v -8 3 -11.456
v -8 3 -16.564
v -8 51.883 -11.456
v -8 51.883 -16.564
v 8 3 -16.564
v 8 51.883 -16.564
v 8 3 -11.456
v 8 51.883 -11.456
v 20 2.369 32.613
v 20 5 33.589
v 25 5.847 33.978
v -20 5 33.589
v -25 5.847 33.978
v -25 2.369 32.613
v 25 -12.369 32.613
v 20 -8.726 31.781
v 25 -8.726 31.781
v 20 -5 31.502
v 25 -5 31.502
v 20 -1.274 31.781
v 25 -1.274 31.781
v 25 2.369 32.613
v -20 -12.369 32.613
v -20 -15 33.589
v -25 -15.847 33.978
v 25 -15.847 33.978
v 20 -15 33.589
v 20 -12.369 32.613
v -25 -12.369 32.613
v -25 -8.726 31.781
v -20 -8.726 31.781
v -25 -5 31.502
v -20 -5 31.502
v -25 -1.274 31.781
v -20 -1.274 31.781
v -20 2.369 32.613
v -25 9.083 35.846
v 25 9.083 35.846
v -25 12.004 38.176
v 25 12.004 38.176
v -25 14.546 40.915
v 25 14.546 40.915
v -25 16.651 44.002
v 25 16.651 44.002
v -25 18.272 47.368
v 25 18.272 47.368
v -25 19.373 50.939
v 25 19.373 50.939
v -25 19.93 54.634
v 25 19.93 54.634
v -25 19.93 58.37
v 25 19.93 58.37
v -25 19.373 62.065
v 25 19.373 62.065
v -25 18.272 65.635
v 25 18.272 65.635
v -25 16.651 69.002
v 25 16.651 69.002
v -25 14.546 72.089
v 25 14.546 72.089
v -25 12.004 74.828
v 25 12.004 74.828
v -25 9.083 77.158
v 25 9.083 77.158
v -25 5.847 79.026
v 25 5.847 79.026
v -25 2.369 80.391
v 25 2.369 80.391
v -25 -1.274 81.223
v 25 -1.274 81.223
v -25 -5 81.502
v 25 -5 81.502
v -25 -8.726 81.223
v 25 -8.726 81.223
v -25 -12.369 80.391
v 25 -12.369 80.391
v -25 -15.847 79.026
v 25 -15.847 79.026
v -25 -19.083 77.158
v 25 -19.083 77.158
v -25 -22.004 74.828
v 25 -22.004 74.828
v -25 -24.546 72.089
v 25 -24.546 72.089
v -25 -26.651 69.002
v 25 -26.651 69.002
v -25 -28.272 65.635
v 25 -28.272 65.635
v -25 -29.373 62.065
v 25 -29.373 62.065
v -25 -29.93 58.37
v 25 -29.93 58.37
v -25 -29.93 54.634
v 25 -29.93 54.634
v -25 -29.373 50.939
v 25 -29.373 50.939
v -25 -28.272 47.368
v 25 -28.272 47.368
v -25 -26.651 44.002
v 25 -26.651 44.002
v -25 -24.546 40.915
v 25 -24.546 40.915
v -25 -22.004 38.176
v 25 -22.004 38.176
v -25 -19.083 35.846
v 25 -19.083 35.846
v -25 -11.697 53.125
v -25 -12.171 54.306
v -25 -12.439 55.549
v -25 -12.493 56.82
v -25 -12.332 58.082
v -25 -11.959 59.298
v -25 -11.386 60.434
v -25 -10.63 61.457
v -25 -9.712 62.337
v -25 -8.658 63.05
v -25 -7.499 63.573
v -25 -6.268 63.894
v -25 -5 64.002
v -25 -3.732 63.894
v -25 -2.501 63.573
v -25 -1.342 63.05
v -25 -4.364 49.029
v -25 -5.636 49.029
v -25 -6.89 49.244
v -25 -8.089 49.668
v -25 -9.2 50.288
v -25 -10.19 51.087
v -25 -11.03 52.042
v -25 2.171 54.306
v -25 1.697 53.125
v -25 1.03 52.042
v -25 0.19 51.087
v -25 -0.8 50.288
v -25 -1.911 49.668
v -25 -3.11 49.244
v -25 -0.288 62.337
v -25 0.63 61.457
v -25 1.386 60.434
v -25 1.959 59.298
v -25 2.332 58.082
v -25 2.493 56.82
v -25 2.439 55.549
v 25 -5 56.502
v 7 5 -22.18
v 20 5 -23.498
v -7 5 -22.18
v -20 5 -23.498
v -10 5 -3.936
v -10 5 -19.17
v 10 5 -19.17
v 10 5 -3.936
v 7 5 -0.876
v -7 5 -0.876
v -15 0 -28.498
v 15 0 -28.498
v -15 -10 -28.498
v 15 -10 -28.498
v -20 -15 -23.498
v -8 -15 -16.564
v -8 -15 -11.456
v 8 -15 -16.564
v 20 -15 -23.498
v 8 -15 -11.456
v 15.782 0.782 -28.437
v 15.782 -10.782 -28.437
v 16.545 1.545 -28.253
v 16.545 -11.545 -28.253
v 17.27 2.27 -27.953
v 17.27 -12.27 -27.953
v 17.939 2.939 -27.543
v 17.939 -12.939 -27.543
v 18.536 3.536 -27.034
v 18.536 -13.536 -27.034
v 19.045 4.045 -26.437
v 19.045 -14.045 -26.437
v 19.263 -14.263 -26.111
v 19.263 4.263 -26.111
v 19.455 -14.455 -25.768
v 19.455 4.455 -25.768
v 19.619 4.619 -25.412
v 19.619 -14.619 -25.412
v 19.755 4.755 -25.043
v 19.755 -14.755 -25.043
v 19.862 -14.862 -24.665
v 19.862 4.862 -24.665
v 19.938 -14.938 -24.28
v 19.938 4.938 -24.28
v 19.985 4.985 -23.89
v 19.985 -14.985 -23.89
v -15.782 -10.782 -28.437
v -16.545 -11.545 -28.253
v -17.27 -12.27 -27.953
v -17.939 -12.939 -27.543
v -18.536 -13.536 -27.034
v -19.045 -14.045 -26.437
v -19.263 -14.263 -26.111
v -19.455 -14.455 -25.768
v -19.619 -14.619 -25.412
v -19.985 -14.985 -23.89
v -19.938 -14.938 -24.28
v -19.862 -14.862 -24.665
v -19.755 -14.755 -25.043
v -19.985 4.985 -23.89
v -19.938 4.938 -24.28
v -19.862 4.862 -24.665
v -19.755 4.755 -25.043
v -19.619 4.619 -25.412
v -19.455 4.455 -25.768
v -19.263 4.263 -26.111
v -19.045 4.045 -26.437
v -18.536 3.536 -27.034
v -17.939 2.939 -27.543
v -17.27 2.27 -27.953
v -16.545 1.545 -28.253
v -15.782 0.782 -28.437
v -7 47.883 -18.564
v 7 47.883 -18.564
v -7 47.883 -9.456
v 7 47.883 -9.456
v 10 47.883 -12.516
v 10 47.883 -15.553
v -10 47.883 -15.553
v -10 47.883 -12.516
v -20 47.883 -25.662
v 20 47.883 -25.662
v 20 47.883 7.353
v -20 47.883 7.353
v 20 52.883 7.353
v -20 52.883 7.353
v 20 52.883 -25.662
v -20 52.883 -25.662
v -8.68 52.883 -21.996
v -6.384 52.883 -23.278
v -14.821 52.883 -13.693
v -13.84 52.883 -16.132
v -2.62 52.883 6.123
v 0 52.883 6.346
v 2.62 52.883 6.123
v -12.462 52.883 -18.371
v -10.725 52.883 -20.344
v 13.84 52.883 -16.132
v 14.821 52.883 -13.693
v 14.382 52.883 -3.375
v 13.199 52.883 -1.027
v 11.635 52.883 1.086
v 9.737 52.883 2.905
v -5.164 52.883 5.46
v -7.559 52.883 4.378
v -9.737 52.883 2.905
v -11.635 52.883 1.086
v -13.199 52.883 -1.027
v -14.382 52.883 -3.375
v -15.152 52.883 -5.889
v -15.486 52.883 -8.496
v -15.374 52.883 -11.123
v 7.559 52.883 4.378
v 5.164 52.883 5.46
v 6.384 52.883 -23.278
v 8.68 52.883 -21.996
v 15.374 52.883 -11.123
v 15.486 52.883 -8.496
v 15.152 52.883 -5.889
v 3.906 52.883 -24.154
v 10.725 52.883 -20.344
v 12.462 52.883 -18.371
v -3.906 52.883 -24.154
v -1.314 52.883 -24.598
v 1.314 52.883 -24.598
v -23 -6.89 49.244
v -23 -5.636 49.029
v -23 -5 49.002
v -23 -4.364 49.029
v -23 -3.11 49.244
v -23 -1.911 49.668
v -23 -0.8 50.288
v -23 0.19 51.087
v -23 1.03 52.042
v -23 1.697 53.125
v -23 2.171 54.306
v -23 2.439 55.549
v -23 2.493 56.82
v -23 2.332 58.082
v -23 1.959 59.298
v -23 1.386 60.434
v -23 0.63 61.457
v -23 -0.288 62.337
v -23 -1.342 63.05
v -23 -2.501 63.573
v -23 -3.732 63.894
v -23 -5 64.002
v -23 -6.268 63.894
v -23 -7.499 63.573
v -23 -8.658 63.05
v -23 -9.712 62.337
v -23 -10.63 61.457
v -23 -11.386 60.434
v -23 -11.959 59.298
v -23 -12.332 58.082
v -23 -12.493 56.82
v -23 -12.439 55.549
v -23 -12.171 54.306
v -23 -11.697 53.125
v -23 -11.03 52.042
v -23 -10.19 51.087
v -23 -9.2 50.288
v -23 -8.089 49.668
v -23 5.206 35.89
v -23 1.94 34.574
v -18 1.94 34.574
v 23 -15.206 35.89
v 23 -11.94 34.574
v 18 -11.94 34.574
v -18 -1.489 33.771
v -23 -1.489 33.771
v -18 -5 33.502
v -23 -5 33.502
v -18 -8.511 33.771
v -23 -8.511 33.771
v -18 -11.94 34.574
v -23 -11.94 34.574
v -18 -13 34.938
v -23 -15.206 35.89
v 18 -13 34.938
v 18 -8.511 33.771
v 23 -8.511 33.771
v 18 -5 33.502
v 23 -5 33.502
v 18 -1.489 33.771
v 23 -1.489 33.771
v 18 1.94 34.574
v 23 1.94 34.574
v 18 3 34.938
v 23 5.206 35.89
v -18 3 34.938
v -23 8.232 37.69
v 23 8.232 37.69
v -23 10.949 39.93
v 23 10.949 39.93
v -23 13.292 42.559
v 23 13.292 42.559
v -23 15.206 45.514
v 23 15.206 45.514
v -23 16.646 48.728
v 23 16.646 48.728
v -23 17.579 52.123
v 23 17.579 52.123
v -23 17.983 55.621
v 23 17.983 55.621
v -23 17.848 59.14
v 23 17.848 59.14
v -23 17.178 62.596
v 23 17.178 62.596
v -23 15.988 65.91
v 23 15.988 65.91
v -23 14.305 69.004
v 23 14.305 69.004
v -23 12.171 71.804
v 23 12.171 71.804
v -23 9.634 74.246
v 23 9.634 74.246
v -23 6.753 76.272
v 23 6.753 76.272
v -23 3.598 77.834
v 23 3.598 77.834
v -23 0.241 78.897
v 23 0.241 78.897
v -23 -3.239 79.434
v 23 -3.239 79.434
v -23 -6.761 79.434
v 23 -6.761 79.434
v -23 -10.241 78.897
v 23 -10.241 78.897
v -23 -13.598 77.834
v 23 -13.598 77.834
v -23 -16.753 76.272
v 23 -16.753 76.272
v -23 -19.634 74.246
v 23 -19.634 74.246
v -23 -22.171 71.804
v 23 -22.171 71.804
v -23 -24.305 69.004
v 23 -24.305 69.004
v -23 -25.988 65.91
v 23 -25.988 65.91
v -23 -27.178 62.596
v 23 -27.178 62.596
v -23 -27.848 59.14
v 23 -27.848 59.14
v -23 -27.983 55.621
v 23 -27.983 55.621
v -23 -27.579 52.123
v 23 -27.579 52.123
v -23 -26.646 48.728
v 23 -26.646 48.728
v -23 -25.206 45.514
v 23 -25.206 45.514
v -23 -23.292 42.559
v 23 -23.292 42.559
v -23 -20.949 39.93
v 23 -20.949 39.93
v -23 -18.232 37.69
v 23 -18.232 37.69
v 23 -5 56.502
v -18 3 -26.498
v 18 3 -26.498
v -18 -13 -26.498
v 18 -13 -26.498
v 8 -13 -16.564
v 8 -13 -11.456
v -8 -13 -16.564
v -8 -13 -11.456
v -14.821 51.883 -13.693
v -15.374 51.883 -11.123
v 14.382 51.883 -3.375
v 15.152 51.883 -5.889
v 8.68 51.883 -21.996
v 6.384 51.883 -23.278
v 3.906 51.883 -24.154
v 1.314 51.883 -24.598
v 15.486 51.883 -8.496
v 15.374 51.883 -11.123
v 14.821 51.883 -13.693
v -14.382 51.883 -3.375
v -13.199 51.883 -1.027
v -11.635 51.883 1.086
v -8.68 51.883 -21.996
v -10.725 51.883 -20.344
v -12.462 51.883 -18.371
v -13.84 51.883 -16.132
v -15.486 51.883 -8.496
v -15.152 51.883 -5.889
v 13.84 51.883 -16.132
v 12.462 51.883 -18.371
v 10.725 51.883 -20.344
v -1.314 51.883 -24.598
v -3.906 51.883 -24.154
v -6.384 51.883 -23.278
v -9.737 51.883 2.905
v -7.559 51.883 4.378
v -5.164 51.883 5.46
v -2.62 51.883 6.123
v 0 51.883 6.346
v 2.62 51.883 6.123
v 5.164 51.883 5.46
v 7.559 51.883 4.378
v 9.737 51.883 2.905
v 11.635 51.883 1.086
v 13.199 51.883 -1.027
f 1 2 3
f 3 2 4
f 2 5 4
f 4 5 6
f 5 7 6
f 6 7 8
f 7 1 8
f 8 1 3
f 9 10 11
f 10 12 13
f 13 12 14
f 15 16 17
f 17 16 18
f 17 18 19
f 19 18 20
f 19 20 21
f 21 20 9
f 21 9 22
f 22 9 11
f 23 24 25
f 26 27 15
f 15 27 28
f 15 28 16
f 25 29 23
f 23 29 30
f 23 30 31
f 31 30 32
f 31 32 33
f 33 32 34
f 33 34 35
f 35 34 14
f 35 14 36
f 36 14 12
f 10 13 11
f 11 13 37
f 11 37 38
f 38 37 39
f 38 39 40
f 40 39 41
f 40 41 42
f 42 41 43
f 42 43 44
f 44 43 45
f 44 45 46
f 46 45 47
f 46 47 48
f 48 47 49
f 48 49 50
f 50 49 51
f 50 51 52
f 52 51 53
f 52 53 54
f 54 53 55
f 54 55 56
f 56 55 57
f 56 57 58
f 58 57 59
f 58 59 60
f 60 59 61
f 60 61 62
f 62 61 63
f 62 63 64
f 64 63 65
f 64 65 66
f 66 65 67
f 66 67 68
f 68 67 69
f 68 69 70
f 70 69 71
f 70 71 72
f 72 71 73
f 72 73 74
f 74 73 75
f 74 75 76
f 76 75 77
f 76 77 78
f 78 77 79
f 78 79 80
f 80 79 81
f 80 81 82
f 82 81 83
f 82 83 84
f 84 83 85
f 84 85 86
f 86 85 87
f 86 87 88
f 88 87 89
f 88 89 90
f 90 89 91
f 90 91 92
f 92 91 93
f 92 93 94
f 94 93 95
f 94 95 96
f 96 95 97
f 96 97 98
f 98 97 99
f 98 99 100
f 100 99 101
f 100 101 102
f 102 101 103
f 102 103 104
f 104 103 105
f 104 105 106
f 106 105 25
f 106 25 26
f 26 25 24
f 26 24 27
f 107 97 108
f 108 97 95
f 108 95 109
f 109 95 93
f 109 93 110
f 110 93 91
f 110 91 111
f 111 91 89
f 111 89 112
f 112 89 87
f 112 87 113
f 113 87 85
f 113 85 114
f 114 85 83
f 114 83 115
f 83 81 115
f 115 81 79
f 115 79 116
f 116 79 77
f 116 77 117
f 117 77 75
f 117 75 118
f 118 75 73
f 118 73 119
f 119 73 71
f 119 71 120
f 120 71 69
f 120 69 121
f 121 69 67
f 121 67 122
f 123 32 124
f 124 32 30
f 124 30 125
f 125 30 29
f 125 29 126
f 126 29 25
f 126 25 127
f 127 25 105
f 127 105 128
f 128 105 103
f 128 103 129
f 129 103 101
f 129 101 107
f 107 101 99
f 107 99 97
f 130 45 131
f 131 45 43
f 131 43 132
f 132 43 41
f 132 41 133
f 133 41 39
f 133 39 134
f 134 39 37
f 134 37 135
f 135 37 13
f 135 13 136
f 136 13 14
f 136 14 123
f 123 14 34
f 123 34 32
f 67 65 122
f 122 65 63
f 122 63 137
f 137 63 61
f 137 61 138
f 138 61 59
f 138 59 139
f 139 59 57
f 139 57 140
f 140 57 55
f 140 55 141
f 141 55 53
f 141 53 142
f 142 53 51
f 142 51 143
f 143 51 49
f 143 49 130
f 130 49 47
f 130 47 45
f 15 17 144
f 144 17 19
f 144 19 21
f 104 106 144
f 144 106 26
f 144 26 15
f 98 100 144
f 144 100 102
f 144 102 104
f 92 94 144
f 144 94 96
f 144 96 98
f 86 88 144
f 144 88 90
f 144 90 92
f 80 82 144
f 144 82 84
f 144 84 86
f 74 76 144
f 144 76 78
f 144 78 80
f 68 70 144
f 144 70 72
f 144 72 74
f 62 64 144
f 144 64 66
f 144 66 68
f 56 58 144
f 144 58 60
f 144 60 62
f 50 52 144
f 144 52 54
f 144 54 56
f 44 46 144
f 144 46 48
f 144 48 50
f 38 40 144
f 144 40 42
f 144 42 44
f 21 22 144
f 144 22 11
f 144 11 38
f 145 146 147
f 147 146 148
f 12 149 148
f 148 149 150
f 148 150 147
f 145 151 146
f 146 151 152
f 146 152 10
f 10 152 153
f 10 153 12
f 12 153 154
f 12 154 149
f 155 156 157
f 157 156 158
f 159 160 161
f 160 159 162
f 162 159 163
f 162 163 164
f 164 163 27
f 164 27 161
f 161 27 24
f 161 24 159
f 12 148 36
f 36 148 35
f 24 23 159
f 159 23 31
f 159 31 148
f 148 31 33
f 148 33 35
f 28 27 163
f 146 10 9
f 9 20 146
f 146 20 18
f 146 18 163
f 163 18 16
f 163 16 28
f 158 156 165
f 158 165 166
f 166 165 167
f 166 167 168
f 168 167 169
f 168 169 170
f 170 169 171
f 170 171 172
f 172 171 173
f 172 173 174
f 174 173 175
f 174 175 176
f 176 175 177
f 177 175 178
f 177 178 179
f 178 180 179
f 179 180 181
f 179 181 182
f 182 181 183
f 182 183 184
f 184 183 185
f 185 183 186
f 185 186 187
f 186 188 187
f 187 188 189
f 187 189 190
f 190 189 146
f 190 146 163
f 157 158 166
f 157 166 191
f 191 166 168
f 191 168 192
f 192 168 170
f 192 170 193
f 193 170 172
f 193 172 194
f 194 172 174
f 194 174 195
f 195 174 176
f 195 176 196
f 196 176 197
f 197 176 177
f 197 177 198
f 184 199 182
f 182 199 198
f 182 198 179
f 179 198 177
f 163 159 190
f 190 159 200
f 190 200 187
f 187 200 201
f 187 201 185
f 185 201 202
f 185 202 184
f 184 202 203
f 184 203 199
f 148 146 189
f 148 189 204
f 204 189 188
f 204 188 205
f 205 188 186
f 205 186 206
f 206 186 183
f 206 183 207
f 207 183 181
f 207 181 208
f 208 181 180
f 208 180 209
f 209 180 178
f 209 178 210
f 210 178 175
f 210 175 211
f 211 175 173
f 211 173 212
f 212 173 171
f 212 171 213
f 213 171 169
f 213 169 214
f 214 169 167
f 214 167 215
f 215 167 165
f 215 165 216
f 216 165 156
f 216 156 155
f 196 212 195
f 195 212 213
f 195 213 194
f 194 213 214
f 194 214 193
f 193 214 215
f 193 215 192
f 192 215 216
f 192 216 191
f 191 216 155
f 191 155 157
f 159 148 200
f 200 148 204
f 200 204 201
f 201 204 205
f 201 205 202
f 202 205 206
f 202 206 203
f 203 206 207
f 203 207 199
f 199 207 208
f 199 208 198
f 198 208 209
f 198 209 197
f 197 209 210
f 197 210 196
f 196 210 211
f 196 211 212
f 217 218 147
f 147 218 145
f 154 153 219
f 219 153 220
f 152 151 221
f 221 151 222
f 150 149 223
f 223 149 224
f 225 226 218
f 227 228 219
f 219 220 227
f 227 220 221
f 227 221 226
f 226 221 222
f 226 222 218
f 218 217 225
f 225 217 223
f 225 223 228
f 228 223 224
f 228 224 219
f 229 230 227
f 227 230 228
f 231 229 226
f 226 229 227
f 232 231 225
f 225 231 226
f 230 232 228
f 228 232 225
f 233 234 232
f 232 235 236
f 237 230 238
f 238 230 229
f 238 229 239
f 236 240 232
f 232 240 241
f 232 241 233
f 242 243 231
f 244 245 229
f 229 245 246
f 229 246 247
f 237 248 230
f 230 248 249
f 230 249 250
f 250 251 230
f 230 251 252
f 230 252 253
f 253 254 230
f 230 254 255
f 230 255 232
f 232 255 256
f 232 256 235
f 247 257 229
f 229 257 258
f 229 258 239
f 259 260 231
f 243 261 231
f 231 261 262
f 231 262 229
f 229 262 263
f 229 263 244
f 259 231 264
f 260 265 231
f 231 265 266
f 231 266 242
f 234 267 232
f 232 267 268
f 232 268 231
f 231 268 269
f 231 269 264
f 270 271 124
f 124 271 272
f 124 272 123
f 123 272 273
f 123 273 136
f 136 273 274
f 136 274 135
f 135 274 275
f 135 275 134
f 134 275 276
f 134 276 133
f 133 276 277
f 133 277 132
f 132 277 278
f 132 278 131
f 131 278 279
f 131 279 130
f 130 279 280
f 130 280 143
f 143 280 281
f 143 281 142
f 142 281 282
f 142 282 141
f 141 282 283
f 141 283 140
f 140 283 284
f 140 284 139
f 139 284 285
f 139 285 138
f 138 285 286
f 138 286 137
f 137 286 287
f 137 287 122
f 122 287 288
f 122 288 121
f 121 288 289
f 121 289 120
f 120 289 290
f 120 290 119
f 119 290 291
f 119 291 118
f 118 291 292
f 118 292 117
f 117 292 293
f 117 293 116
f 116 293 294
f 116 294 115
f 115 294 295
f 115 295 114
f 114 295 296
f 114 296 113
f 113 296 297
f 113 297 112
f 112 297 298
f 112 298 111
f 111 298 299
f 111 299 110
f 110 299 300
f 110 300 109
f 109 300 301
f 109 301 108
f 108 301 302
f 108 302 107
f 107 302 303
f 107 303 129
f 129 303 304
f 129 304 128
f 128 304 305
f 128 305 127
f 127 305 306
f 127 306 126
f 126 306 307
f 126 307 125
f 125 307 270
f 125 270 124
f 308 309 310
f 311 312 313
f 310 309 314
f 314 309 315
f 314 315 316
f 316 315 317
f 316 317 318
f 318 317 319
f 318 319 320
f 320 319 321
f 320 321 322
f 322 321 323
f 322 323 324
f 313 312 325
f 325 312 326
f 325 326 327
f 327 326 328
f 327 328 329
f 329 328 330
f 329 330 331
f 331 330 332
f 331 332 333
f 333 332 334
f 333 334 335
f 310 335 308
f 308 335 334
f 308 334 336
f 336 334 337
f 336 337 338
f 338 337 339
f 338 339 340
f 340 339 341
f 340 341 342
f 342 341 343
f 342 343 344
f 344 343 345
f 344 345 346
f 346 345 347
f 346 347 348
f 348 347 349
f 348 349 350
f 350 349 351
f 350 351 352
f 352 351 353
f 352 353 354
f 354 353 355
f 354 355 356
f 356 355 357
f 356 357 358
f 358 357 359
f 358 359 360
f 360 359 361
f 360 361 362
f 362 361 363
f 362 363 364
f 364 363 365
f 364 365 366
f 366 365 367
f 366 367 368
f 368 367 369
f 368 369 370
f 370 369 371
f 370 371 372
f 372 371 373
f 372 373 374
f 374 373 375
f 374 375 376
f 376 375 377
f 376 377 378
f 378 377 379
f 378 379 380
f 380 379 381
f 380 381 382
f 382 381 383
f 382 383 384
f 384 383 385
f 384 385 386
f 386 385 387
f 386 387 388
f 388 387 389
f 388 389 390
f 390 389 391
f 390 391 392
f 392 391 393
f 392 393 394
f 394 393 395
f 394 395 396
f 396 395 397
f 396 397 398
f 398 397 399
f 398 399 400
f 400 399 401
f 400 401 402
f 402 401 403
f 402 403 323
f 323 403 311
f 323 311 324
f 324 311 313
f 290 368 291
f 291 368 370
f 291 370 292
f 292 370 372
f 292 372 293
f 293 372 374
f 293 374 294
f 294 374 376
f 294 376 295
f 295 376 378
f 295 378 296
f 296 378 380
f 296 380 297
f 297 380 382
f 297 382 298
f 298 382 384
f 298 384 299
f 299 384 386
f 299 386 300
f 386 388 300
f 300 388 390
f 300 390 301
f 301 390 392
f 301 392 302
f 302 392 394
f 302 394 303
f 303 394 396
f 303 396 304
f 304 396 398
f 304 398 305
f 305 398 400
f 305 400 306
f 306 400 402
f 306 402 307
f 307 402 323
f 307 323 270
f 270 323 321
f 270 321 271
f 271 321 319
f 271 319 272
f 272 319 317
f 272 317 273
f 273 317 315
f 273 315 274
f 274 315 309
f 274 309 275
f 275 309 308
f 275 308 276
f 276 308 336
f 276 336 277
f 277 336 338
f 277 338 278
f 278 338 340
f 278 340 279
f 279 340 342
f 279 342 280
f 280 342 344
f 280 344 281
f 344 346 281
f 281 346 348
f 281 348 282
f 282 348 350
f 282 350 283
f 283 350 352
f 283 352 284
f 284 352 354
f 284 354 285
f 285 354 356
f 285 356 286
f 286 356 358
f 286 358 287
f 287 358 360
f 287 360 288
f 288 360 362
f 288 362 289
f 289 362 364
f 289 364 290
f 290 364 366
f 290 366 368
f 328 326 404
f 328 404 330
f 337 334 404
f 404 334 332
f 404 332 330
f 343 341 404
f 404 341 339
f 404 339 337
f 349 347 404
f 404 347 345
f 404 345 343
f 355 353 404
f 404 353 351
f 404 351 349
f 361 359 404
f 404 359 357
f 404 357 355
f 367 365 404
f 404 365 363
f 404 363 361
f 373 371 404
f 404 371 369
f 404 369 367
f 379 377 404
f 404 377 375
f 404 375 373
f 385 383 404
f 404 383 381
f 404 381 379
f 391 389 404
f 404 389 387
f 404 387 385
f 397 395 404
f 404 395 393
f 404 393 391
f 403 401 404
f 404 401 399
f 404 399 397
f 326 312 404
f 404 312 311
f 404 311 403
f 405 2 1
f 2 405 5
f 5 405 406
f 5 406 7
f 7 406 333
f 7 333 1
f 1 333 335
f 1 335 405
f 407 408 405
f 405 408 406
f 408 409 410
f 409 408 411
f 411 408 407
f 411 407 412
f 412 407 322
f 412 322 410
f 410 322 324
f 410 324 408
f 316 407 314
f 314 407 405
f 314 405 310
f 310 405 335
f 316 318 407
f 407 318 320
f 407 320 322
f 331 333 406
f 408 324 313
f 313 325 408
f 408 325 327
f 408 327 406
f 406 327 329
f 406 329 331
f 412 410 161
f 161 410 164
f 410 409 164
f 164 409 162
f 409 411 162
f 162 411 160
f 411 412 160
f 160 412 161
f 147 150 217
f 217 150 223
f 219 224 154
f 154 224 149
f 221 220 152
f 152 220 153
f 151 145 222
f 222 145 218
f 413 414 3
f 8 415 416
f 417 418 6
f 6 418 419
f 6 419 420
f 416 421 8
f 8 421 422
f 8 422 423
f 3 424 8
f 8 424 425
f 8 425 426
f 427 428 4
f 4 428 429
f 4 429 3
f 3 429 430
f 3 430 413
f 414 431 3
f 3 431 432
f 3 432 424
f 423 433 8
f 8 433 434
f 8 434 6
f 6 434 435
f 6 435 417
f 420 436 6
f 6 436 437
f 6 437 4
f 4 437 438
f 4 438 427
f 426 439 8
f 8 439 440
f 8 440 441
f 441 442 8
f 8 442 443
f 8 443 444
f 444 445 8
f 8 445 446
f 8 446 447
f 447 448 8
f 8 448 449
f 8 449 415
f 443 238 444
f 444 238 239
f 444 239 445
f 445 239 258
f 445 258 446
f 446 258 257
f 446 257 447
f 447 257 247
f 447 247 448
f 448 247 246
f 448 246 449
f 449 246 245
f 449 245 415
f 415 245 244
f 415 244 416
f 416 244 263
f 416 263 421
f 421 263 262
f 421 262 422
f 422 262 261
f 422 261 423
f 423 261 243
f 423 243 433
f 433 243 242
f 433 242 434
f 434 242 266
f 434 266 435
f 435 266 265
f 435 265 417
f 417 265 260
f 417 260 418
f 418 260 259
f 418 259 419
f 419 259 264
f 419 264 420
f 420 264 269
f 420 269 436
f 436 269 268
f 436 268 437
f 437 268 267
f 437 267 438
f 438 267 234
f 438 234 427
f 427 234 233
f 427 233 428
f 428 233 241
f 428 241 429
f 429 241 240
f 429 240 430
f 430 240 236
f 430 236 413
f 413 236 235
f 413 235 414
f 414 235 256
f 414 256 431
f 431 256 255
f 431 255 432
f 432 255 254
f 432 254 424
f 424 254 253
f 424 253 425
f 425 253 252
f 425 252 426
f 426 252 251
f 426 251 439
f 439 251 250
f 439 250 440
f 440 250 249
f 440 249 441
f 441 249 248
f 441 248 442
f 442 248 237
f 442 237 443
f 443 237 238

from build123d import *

# Parameters (mm, degrees)
BOSS_EXTRUDE1_DEPTH      = 25
BOSS_EXTRUDE1_DEPTH_BACK = 25
SKETCH1_R                = 25
BOSS_EXTRUDE4_DEPTH      = 20
BOSS_EXTRUDE4_DEPTH_BACK = 20
SKETCH9_W                = 85
SKETCH9_H                = 20
SHELL3_START             = -18
SHELL3_DEPTH             = 36
SHELL3_START_2           = -23
SHELL3_2_OUTLINE_R       = 23
SHELL3_2_DEPTH           = 46
FILLET2_R                = 5
BOSS_EXTRUDE5_DEPTH      = 10
BOSS_EXTRUDE5_DEPTH_BACK = 10
SKETCH5_W                = 40
SKETCH5_H                = 33.01510515
BOSS_EXTRUDE3_DEPTH      = 5
CUT_EXTRUDE2_REACH       = 111.266
SKETCH8_R                = 7.5
SKETCH12_W               = 16
SKETCH12_H               = 5.10776434
CUT_EXTRUDE3_DEPTH       = 119.899470043
CHAMFER2_SIZE            = 3
SKETCH13_R               = 15.5
CUT_EXTRUDE4_DEPTH       = 1


# Read off the part's stored shape, not the designer's step: Shell3
with BuildPart() as part:
    # Sketch1 → Boss-Extrude1 (new, two sides: drawn at the far end of the back side and taken through both)
    with BuildSketch(Plane(origin=(0, 0, 0), x_dir=(0, 0, -1), z_dir=(1, 0, 0)).offset(-BOSS_EXTRUDE1_DEPTH_BACK)):
        with Locations((-56.501901141, -5)):
            Circle(SKETCH1_R)
    extrude(amount=BOSS_EXTRUDE1_DEPTH + BOSS_EXTRUDE1_DEPTH_BACK)

    # Sketch9 → Boss-Extrude4 (add, two sides: drawn at the far end of the back side and taken through both)
    with BuildSketch(Plane(origin=(0, 0, 0), x_dir=(0, 0, -1), z_dir=(1, 0, 0)).offset(-BOSS_EXTRUDE4_DEPTH_BACK)):
        with Locations((-14.001901141, -5)):
            Rectangle(SKETCH9_W, SKETCH9_H)
    extrude(amount=BOSS_EXTRUDE4_DEPTH + BOSS_EXTRUDE4_DEPTH_BACK)

    # Shell3 outline → Shell3 (cut)
    with BuildSketch(Plane.YZ.offset(SHELL3_START)):
        with BuildLine():
            ThreePointArc((3, 34.938042488), (-5, 79.501901141), (-13, 34.938042488))
            Line((-13, 34.938042488), (-13, -26.498098859))
            Line((-13, -26.498098859), (3, -26.498098859))
            Line((3, -26.498098859), (3, 34.938042488))
        make_face()
    extrude(amount=SHELL3_DEPTH, mode=Mode.SUBTRACT)

    # Shell3 2 outline → Shell3 2 (cut)
    with BuildSketch(Plane.YZ.offset(SHELL3_START_2)):
        with Locations((-5, 56.501901141)):
            Circle(SHELL3_2_OUTLINE_R)
    extrude(amount=SHELL3_2_DEPTH, mode=Mode.SUBTRACT)

    # Fillet2
    fillet2_edges = [part.edges().sort_by_distance(p)[0] for p in [
        (0, 5, -28.498098859),
        (-20, -5, -28.498098859),
        (0, -15, -28.498098859),
        (20, -5, -28.498098859),
    ]]
    fillet(fillet2_edges, radius=FILLET2_R)

    # Sketch11 → Boss-Extrude5 (add, two sides: drawn at the far end of the back side and taken through both)
    with BuildSketch(Plane.ZY.offset(-BOSS_EXTRUDE5_DEPTH_BACK)):
        Polygon((-0.876282257, 5), (-9.456060259, 47.882592183), (-18.563824599, 47.882592183), (-22.259728969, 4.059726083), align=None)
    extrude(amount=BOSS_EXTRUDE5_DEPTH + BOSS_EXTRUDE5_DEPTH_BACK)

    # Sketch5 → Boss-Extrude3 (add)
    with BuildSketch(Plane(origin=(0, 47.882592183, 0), x_dir=(1, 0, 0), z_dir=(0, 1, 0))):
        with Locations((0, 9.154141988)):
            Rectangle(SKETCH5_W, SKETCH5_H)
    extrude(amount=BOSS_EXTRUDE3_DEPTH)

    # Sketch8 → Cut-Extrude2 (cut, up to next)
    with BuildSketch(Plane.ZY.offset(25), mode=Mode.PRIVATE) as cut_extrude2_sk1:
        with Locations((56.501901141, -5)):
            Circle(SKETCH8_R)
    cut_extrude2_tool1 = extrude(cut_extrude2_sk1.sketch, amount=-CUT_EXTRUDE2_REACH, mode=Mode.PRIVATE) & part.part
    add(cut_extrude2_tool1.solids().sort_by_distance((-25, -5, 56.501901))[0], mode=Mode.SUBTRACT)

    # Sketch12 → Cut-Extrude3 (cut, through all)
    with BuildSketch(Plane(origin=(0, 52.882592183, 0), x_dir=(1, 0, 0), z_dir=(0, 1, 0))):
        with Locations((0, 14.009942429)):
            Rectangle(SKETCH12_W, SKETCH12_H)
    extrude(amount=-CUT_EXTRUDE3_DEPTH, mode=Mode.SUBTRACT)

    # Chamfer2
    chamfer2_edges = [part.edges().sort_by_distance(p)[0] for p in [
        (10, 26.441296092, -20.372126679),
        (10, 26.441296092, -5.166171258),
        (-10, 26.441296092, -5.166171258),
        (-10, 26.441296092, -20.372126679),
    ]]
    chamfer(chamfer2_edges, length=CHAMFER2_SIZE)

    # Sketch13 → Cut-Extrude4 (cut)
    with BuildSketch(Plane(origin=(0, 52.882592183, 0), x_dir=(1, 0, 0), z_dir=(0, 1, 0))):
        with Locations(Location((0, 9.154141988, 0), (0, 0, 270))):
            Circle(SKETCH13_R)
    extrude(amount=-CUT_EXTRUDE4_DEPTH, mode=Mode.SUBTRACT)


solid = part.part
